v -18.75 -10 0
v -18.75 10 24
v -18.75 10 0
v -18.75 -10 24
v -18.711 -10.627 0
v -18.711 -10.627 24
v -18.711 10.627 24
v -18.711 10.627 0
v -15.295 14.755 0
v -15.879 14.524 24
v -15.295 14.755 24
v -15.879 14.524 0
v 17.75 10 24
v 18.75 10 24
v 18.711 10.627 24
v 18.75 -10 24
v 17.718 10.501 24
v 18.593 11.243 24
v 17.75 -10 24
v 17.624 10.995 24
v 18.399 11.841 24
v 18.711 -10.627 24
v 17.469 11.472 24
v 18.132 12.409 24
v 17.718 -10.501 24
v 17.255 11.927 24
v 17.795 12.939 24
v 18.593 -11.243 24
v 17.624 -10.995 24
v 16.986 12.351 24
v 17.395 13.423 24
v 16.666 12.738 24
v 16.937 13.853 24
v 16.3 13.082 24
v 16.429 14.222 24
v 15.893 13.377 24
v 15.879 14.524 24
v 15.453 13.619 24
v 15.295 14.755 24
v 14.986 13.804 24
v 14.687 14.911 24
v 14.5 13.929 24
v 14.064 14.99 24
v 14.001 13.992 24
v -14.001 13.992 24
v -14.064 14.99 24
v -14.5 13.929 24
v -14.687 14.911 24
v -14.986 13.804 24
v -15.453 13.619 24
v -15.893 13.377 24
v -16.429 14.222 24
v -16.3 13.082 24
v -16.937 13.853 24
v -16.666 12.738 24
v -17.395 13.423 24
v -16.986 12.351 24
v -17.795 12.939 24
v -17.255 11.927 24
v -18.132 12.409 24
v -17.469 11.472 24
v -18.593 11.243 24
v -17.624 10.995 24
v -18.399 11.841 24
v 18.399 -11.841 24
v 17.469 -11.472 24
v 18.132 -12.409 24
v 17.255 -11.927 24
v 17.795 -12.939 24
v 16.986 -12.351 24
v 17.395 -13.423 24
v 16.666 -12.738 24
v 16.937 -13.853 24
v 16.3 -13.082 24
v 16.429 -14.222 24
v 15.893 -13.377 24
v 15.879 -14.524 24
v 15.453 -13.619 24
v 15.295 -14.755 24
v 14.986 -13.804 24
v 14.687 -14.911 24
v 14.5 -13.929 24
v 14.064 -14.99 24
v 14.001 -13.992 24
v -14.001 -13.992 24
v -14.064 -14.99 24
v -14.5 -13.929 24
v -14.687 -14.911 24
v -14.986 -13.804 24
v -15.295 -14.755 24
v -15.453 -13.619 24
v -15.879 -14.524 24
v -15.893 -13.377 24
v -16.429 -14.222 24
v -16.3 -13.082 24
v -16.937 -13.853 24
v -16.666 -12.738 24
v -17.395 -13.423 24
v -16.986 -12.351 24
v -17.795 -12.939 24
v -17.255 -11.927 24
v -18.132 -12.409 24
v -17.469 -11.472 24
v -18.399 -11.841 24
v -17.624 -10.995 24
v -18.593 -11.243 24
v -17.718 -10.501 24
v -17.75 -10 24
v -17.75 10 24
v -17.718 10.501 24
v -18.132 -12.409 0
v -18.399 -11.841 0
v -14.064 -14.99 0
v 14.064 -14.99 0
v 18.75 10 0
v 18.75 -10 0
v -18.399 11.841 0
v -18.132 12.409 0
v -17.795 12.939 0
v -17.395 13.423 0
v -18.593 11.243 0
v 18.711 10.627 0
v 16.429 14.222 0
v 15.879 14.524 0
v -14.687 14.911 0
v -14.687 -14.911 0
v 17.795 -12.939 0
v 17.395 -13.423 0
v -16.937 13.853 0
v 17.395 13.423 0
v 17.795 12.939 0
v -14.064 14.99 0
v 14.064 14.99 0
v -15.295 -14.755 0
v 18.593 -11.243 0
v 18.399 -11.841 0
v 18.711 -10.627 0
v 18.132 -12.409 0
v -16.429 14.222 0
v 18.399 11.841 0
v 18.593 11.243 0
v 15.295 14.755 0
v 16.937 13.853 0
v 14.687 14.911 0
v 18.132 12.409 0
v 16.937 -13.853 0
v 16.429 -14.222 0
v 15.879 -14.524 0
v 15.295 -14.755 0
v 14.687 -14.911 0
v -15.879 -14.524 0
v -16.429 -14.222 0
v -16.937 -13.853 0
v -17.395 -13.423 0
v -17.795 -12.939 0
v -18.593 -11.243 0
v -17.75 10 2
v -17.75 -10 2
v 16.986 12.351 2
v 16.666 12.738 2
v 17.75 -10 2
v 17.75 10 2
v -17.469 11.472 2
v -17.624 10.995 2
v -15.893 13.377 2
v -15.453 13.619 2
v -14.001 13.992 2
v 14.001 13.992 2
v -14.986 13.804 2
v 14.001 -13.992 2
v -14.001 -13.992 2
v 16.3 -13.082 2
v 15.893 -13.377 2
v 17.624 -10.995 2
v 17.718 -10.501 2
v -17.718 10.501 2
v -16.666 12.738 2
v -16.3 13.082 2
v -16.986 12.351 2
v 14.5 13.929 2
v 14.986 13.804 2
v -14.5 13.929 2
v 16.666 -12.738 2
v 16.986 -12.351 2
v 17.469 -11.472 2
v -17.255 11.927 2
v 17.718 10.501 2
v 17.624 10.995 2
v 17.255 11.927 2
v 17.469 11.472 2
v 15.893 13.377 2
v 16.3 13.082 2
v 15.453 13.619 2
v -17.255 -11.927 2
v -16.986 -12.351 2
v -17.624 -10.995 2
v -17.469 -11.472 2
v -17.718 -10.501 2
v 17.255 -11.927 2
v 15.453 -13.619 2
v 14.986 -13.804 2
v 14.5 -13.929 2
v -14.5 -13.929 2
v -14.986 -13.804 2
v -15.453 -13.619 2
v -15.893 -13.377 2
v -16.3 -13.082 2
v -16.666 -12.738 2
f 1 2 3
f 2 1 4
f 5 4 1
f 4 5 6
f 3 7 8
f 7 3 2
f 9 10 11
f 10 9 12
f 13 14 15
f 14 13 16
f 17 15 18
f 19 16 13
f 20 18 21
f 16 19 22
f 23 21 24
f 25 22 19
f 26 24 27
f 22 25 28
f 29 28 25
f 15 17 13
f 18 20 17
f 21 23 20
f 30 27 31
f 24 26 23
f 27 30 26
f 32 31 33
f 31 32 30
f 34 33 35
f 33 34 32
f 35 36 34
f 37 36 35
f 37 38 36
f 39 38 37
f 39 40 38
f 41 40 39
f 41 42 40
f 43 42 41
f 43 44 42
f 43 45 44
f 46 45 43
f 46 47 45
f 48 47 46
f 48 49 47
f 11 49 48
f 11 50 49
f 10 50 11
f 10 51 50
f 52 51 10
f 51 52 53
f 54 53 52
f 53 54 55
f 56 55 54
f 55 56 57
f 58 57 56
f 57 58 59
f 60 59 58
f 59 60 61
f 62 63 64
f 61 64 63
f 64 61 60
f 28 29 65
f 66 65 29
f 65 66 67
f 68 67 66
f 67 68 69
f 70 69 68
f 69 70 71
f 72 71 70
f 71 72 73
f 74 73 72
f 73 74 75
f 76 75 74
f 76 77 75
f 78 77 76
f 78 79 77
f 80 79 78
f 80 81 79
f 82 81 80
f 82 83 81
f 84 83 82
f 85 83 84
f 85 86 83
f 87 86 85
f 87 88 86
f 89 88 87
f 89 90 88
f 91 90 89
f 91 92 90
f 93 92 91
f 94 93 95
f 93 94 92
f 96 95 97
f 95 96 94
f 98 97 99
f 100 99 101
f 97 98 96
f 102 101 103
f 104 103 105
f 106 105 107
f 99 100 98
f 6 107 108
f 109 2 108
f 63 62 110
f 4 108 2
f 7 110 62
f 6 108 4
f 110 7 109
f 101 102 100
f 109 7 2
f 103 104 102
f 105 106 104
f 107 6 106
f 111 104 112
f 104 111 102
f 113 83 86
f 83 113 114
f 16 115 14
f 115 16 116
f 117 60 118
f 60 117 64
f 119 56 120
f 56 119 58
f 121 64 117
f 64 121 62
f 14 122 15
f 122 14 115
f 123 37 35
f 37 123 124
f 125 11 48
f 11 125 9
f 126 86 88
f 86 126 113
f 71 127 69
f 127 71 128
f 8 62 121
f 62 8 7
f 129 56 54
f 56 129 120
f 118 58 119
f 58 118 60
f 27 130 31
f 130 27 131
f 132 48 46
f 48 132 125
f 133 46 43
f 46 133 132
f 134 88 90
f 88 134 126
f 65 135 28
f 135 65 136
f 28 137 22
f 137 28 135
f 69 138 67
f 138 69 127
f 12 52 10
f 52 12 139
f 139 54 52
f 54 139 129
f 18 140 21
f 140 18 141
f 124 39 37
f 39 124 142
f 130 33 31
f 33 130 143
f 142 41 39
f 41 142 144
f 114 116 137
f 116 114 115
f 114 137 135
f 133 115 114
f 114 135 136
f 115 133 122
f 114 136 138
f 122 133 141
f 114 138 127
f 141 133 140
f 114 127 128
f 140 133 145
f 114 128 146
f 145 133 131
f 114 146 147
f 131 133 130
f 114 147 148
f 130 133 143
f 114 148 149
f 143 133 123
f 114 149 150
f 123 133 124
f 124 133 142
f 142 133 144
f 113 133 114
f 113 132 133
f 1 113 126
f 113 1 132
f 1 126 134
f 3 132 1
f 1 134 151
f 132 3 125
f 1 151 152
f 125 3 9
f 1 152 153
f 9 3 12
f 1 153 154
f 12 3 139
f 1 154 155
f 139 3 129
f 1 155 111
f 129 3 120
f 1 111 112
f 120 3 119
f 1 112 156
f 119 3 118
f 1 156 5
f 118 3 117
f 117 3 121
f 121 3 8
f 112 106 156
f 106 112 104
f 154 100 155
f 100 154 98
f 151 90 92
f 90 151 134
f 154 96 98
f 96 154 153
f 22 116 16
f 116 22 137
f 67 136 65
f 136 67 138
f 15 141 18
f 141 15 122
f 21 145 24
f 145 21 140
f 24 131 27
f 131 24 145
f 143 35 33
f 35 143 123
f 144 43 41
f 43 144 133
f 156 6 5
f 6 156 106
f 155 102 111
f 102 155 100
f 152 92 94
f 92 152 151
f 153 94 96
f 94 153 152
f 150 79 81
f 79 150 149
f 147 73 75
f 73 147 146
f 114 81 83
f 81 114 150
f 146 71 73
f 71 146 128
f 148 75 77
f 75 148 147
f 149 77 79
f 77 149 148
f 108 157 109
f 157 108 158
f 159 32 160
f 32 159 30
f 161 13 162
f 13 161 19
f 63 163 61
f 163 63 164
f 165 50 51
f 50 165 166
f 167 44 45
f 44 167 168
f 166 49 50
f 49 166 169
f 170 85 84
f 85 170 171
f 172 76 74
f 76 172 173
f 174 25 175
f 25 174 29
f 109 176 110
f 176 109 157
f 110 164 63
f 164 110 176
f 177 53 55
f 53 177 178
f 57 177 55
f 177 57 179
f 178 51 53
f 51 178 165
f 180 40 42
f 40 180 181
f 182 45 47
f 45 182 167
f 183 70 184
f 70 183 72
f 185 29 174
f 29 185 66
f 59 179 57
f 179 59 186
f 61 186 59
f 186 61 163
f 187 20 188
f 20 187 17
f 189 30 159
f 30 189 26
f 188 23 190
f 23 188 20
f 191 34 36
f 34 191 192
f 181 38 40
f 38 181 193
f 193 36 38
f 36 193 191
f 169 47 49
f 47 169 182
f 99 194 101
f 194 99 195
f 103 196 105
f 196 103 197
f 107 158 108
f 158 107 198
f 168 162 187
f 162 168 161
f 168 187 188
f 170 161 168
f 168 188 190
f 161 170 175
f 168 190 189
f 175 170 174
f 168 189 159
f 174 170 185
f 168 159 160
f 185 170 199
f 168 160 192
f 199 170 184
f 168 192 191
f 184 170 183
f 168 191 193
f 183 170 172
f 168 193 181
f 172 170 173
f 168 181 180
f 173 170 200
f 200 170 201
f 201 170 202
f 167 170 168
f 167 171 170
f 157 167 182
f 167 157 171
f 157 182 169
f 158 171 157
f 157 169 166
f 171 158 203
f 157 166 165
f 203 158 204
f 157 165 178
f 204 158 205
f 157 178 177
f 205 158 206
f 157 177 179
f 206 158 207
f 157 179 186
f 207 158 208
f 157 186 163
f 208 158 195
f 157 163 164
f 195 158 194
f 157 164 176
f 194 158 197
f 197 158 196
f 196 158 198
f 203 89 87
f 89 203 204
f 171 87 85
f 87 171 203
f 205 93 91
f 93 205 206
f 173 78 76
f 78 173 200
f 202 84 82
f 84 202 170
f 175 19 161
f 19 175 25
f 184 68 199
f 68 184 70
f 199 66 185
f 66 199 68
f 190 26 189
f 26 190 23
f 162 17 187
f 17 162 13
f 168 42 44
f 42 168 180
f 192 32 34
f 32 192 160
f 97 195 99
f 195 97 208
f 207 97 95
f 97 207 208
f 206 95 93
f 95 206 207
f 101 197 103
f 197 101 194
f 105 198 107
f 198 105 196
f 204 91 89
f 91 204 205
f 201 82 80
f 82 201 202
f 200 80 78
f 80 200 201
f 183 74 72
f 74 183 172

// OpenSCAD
$fn = 50;


difference() {
	union() {
		hull() {
			translate(v = [-13.7500000000, 10.0000000000, 0]) {
				cylinder(h = 24, r = 5);
			}
			translate(v = [13.7500000000, 10.0000000000, 0]) {
				cylinder(h = 24, r = 5);
			}
			translate(v = [-13.7500000000, -10.0000000000, 0]) {
				cylinder(h = 24, r = 5);
			}
			translate(v = [13.7500000000, -10.0000000000, 0]) {
				cylinder(h = 24, r = 5);
			}
		}
	}
	union() {
		translate(v = [0, 0, 2]) {
			hull() {
				translate(v = [-13.7500000000, 10.0000000000, 0]) {
					cylinder(h = 22, r = 4);
				}
				translate(v = [13.7500000000, 10.0000000000, 0]) {
					cylinder(h = 22, r = 4);
				}
				translate(v = [-13.7500000000, -10.0000000000, 0]) {
					cylinder(h = 22, r = 4);
				}
				translate(v = [13.7500000000, -10.0000000000, 0]) {
					cylinder(h = 22, r = 4);
				}
			}
		}
	}
}
